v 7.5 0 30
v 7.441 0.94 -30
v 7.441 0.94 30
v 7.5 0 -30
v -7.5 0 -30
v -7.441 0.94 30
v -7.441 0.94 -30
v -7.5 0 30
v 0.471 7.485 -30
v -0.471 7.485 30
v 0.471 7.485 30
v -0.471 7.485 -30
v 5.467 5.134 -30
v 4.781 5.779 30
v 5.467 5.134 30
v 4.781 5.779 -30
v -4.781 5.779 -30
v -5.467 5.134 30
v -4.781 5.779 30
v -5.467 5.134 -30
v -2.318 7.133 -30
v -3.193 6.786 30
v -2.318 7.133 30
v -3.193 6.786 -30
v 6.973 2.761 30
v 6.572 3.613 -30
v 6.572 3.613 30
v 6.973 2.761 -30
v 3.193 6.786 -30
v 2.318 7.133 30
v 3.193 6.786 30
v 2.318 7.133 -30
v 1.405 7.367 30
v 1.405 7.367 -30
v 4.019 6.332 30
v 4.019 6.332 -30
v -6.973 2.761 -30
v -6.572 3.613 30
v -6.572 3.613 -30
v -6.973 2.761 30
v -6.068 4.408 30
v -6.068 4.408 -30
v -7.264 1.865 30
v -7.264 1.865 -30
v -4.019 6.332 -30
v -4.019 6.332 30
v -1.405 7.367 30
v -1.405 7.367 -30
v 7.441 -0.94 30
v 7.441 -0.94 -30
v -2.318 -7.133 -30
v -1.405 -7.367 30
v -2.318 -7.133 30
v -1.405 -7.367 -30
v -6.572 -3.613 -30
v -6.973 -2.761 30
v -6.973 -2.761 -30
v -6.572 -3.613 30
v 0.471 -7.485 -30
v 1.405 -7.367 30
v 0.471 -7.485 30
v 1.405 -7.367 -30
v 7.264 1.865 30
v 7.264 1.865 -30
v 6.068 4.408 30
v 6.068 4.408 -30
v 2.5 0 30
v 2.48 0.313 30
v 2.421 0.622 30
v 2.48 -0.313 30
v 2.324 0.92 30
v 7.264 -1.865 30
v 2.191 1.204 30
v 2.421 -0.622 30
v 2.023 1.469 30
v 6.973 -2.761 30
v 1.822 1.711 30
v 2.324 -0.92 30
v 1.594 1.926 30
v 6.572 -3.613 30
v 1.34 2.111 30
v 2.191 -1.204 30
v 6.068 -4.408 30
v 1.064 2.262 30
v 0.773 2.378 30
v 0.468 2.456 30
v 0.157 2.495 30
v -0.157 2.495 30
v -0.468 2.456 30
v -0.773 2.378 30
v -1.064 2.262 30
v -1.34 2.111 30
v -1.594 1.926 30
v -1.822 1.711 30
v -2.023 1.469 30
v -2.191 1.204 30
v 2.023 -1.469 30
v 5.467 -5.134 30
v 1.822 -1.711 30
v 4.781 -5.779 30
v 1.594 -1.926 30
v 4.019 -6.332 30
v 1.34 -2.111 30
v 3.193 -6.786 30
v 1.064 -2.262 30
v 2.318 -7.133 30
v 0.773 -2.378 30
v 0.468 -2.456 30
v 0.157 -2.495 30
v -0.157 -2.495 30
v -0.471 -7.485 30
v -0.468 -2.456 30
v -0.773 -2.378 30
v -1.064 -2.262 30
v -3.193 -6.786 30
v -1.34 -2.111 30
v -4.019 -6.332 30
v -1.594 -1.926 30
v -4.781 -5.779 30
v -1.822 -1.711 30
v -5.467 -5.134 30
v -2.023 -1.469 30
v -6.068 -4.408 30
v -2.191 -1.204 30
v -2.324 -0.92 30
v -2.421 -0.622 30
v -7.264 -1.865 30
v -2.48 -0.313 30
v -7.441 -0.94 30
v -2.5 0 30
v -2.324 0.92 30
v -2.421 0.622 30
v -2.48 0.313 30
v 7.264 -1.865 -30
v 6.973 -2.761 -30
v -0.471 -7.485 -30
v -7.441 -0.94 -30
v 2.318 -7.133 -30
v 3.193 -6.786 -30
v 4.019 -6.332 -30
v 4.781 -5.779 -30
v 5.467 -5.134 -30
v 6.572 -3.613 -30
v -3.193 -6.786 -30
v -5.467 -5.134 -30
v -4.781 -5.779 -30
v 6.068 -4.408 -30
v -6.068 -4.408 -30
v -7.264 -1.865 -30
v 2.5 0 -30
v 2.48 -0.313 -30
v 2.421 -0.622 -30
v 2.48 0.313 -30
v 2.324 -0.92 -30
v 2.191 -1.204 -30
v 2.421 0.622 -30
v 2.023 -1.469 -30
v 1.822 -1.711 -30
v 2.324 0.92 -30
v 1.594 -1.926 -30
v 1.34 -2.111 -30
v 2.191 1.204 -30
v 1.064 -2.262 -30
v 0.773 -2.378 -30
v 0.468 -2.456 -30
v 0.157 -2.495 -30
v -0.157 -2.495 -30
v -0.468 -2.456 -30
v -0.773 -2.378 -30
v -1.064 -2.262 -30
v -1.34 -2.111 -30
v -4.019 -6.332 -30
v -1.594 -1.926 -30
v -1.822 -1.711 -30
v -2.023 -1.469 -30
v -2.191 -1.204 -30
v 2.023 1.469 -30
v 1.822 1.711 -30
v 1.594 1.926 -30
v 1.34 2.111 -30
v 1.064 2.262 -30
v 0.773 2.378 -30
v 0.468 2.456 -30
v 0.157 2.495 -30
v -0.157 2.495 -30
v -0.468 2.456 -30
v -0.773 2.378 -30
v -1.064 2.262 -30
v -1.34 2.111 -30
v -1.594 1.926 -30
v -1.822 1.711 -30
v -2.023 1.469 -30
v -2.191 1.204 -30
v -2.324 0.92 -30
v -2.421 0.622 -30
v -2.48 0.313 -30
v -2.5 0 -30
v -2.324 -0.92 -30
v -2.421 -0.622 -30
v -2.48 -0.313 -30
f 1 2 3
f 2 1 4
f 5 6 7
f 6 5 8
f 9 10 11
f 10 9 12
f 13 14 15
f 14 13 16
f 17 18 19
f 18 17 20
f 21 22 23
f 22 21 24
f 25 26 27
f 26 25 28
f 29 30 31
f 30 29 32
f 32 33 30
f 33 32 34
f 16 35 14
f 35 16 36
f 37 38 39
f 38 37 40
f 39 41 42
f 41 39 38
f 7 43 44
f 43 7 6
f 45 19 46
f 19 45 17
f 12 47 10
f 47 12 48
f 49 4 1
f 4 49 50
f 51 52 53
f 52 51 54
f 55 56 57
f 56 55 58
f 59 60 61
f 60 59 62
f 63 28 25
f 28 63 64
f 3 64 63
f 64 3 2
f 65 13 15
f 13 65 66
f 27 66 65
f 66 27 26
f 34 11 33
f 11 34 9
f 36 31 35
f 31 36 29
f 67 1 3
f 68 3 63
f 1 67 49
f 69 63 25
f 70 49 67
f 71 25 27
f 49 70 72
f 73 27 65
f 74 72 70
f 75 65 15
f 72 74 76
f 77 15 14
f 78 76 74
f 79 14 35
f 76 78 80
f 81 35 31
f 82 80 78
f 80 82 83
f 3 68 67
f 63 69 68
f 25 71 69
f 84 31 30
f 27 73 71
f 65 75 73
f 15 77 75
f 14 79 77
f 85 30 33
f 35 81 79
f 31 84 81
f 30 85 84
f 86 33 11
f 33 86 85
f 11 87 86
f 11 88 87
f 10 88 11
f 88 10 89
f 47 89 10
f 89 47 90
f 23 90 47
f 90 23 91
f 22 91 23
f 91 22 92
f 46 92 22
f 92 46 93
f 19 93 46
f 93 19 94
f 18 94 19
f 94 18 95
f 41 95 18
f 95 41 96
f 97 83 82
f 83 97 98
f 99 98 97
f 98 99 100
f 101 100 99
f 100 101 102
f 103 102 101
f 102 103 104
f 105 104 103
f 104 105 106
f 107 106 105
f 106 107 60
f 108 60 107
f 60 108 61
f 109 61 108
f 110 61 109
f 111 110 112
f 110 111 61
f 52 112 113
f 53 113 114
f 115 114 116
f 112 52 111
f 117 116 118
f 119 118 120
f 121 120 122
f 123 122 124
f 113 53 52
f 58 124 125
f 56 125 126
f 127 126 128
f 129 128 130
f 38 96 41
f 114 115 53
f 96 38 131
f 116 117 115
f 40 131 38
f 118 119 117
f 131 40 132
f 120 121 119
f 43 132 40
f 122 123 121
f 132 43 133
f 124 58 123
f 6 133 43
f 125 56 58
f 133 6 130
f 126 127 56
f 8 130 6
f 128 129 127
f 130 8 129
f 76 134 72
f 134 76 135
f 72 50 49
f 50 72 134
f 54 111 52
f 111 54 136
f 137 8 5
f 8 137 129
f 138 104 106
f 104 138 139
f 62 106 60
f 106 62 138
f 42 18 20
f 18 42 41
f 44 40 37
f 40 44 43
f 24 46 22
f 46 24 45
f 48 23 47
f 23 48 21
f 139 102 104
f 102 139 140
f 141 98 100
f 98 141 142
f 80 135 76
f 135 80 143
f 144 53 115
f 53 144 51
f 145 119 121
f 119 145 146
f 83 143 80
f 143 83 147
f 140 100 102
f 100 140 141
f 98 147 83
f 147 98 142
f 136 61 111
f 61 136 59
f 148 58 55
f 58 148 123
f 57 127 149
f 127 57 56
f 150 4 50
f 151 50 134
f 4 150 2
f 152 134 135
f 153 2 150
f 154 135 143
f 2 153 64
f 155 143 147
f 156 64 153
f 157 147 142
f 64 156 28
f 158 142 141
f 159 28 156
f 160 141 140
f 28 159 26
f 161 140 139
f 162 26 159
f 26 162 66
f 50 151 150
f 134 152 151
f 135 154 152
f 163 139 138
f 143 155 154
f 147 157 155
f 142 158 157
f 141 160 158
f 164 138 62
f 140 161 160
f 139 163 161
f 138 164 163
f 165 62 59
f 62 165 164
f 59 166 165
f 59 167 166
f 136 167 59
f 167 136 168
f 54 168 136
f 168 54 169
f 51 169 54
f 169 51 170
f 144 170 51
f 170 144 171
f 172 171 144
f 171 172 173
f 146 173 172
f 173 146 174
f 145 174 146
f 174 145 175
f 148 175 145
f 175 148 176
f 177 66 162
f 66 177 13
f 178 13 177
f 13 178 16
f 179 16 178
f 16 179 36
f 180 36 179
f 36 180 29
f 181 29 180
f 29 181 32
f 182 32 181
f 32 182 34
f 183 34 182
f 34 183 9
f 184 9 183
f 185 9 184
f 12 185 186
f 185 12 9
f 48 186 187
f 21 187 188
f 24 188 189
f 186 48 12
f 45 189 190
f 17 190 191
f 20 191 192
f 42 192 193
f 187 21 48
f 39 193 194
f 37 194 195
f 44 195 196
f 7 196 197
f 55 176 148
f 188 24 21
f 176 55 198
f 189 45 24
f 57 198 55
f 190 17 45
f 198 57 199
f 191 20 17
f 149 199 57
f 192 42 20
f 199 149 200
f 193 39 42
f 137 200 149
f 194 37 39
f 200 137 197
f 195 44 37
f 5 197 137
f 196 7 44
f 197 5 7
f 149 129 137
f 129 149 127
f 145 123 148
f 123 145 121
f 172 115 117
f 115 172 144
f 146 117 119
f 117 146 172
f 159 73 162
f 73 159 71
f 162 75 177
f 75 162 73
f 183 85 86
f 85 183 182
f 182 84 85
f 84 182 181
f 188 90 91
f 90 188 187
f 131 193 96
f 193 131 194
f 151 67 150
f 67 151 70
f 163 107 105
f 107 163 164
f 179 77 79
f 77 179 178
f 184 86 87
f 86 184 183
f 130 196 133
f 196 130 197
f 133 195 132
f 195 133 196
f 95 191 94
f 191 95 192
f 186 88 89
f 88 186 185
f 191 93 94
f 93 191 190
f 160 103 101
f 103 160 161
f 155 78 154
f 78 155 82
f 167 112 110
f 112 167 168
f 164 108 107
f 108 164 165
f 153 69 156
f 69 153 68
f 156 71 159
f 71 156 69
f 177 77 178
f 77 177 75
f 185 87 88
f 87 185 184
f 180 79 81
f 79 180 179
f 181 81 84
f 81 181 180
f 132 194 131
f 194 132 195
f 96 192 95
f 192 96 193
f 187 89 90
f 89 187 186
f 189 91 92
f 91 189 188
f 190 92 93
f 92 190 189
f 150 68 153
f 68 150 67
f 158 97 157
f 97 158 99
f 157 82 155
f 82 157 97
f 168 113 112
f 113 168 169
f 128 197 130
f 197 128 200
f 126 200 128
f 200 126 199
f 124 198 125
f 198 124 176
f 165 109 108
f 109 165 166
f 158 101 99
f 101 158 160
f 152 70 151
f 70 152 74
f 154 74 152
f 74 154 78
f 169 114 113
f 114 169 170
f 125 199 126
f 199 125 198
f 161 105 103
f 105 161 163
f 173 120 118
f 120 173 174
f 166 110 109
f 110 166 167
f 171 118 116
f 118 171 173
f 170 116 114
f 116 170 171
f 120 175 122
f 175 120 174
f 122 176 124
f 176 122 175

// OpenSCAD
$fn = 50;


difference() {
	union() {
		translate(v = [0, 0, -30.0000000000]) {
			cylinder(h = 60, r = 7.5000000000);
		}
	}
	union() {
		translate(v = [0, 0, -100.0000000000]) {
			cylinder(h = 200, r = 2.5000000000);
		}
	}
}
